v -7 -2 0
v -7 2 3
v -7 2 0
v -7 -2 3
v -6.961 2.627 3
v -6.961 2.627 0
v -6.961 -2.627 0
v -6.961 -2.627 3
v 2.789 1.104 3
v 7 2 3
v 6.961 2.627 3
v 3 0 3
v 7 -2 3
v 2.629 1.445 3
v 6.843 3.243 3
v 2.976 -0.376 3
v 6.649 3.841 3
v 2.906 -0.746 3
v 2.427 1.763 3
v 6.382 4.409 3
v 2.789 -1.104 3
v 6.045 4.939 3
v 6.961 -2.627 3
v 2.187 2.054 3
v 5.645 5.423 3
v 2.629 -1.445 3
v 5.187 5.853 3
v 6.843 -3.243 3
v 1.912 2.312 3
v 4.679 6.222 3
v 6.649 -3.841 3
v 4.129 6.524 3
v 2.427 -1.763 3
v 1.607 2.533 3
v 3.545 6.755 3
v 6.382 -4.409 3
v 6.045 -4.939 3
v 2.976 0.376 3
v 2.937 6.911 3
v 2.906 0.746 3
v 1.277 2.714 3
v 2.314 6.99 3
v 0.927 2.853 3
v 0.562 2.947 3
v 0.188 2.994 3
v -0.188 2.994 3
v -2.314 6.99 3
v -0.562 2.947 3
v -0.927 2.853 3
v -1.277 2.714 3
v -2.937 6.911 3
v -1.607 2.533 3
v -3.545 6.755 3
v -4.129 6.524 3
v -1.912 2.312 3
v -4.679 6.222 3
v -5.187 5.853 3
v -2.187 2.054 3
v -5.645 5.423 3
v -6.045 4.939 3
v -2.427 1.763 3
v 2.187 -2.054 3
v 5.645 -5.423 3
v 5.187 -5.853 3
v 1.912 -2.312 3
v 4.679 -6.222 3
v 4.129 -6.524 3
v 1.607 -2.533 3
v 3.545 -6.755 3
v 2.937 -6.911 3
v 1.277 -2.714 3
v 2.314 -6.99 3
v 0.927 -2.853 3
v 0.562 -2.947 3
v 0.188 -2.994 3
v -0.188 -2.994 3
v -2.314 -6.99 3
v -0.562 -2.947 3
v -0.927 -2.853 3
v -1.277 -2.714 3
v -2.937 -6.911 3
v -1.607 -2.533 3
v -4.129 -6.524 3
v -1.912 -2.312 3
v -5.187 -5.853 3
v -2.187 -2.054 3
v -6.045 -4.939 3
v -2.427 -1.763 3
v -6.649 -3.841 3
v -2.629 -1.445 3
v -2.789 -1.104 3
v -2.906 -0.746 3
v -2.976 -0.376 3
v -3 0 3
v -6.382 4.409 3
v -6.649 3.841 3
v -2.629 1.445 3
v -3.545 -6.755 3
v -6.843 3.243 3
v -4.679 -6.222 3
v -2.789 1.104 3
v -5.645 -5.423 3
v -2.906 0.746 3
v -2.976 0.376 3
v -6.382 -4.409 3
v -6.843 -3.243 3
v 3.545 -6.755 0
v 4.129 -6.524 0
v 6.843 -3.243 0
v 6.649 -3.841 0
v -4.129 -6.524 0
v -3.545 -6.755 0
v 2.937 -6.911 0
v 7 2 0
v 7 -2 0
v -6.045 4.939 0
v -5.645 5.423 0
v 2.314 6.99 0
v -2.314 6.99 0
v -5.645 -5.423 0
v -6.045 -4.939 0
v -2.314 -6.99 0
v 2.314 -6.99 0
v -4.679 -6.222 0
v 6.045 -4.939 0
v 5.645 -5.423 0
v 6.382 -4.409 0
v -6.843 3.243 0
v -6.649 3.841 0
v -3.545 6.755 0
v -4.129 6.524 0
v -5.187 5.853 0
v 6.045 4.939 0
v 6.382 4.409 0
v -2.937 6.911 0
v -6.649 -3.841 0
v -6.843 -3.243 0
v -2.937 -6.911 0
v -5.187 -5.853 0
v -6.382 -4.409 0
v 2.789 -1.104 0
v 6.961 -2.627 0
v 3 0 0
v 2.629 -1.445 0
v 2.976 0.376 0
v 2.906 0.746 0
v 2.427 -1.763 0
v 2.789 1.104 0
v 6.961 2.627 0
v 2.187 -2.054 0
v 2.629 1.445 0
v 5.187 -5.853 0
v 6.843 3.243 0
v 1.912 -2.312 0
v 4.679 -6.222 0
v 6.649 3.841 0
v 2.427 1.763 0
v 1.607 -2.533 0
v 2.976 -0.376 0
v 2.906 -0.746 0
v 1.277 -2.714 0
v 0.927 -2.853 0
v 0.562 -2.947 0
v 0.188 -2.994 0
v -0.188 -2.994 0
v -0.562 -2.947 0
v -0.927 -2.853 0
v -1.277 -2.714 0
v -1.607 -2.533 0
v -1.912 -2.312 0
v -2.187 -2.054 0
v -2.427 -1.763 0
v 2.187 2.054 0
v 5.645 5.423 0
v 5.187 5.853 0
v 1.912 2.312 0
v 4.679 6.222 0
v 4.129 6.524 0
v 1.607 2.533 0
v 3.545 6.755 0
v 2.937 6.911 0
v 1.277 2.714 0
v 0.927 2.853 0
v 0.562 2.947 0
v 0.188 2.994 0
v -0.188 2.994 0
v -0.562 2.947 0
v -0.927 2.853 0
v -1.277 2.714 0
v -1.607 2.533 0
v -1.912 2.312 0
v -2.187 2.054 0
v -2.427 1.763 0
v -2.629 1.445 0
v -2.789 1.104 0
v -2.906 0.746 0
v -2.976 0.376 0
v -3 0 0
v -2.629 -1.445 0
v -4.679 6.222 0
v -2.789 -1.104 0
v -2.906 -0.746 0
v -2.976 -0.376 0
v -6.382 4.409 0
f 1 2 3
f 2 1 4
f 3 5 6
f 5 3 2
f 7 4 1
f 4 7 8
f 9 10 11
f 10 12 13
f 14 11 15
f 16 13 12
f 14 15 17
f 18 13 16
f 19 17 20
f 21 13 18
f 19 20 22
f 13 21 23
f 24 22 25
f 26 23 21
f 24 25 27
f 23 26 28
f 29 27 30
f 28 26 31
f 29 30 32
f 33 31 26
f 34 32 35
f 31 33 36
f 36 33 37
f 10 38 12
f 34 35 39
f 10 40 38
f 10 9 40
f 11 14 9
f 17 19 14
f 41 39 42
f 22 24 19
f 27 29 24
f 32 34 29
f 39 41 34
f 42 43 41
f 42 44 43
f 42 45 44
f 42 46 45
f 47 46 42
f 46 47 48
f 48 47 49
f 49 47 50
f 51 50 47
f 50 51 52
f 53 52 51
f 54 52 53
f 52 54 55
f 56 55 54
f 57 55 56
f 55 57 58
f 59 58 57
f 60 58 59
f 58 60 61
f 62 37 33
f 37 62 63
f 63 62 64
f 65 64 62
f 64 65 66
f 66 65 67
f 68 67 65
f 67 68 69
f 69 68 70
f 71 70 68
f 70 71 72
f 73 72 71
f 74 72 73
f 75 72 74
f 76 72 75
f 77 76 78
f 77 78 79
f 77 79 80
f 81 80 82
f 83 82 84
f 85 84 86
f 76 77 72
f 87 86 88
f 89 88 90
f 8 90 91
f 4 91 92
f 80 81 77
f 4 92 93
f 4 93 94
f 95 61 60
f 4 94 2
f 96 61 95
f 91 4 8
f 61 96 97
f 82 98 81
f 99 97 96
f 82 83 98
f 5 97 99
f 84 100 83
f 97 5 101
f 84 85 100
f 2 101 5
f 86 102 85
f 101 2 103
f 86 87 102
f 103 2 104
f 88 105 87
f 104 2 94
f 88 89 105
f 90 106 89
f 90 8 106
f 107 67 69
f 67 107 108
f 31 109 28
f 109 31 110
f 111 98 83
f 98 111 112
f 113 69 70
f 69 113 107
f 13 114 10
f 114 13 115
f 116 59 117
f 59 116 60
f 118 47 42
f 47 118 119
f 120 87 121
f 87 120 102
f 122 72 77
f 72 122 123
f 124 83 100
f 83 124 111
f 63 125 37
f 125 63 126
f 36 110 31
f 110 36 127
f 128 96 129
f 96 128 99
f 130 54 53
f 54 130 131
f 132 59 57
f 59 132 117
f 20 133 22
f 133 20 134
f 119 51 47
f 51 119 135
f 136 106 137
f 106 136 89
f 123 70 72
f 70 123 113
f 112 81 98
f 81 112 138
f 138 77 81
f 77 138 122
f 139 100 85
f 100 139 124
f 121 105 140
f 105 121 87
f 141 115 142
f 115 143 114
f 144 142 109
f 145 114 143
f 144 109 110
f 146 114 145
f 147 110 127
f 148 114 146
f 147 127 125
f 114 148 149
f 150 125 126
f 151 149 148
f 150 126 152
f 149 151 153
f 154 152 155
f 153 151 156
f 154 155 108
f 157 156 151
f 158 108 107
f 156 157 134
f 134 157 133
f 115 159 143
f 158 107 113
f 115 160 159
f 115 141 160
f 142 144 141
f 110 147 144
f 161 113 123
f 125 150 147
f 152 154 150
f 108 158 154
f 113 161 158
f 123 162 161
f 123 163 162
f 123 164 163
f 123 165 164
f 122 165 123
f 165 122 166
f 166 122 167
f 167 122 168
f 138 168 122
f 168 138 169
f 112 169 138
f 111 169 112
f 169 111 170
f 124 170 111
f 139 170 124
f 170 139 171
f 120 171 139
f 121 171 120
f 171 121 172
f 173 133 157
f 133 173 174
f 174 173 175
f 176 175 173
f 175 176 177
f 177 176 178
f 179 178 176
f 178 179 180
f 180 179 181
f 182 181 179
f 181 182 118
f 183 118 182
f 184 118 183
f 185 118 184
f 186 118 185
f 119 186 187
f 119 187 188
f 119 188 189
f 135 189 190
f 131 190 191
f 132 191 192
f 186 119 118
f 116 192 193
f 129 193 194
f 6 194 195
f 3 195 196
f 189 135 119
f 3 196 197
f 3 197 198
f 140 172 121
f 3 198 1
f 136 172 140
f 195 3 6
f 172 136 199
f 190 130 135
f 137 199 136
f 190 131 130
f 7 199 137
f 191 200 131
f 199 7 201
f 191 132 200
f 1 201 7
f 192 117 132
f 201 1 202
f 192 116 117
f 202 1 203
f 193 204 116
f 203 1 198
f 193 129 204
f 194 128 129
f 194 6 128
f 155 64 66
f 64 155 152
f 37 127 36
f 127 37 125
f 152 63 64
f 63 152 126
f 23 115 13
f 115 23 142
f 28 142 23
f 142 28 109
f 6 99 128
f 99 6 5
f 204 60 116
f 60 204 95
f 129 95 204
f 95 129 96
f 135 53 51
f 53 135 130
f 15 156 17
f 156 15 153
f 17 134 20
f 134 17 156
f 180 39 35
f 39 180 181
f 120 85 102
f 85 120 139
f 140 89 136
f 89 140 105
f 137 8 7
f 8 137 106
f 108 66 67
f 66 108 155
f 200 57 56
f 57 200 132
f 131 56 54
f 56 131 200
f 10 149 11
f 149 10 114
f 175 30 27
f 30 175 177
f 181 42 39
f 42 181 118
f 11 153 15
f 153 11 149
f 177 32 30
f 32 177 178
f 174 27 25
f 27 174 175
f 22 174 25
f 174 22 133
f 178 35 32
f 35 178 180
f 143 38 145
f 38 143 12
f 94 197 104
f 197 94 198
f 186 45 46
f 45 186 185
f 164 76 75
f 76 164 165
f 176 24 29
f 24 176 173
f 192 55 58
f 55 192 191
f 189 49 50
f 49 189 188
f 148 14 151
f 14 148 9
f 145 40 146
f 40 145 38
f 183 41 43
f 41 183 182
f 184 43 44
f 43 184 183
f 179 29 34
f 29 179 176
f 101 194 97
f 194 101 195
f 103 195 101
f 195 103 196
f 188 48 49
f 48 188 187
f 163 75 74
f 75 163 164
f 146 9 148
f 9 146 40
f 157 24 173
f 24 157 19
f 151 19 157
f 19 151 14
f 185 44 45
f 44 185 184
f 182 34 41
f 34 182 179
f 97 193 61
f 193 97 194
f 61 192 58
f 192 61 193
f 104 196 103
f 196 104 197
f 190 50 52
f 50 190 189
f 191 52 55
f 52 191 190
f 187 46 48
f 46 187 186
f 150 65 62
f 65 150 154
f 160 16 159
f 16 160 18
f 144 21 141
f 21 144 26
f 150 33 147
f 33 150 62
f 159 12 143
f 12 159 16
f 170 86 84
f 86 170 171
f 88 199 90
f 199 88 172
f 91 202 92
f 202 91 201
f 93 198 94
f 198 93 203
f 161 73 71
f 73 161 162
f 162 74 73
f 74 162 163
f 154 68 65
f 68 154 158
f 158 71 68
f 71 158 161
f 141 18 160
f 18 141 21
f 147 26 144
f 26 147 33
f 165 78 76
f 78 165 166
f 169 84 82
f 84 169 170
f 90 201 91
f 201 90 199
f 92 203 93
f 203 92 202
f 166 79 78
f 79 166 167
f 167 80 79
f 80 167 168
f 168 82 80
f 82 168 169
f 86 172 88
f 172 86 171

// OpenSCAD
// Generated by SolidPython 1.1.3 on 2023-03-12 21:50:28
$fn = 50;


difference() {
	union() {
		translate(v = [0, 0, 0]) {
			rotate(a = [0, 0, 0]) {
				hull() {
					translate(v = [-2.0000000000, 2.0000000000, 0]) {
						rotate(a = [0, 0, 0]) {
							translate(v = [0, 0, 0]) {
								rotate(a = [0, 0, 0]) {
									cylinder(h = 3, r = 5);
								}
							}
						}
					}
					translate(v = [2.0000000000, 2.0000000000, 0]) {
						rotate(a = [0, 0, 0]) {
							translate(v = [0, 0, 0]) {
								rotate(a = [0, 0, 0]) {
									cylinder(h = 3, r = 5);
								}
							}
						}
					}
					translate(v = [-2.0000000000, -2.0000000000, 0]) {
						rotate(a = [0, 0, 0]) {
							translate(v = [0, 0, 0]) {
								rotate(a = [0, 0, 0]) {
									cylinder(h = 3, r = 5);
								}
							}
						}
					}
					translate(v = [2.0000000000, -2.0000000000, 0]) {
						rotate(a = [0, 0, 0]) {
							translate(v = [0, 0, 0]) {
								rotate(a = [0, 0, 0]) {
									cylinder(h = 3, r = 5);
								}
							}
						}
					}
				}
			}
		}
	}
	union() {
		translate(v = [0.0000000000, 0.0000000000, 0]) {
			rotate(a = [0, 0, 0]) {
				translate(v = [0, 0, -50]) {
					rotate(a = [0, 0, 0]) {
						cylinder(h = 100, r = 3.0000000000);
					}
				}
			}
		}
	}
}
/***********************************************
*********      SolidPython code:      **********
************************************************
 
from solid import *
import os
import subprocess

import oomB

import opsc_library_gen

mode = "laser"
#mode = "3d_print"

defined_objects = {}

radius_dict = {}
countersunk_dict = {}


def set_mode(m):
    global mode
    mode = m
    radius_dict['M6'] = 6.5/2
    radius_dict['M3'] = 3.3/2
    if mode == "laser":
        radius_dict['M6'] = 6/2
        radius_dict['M3'] = 3/2

    countersunk_dict['M3'] = {}
    countersunk_dict['M3']['little_rad'] = radius_dict['M3']
    countersunk_dict['M3']['big_rad'] = (5.5+0.6)/2
    if mode == "laser":
        countersunk_dict['M3']['big_rad'] = (4.75+0.6)/2
        countersunk_dict['M3']['little_rad'] = (4.75+0.6)/2

    countersunk_dict['M3']['height'] = 1.7


def opsc_make_object(filename, objects, save_type="none",resolution=50, layers = 1, tilediff = 200, mode="laser", overwrite=True):
    if overwrite or not os.path.exists(filename):
        set_mode(mode)
        save_type = save_type.lower()
        os.makedirs(os.path.dirname(filename), exist_ok=True)
        final_object = opsc_get_object(objects, mode = mode)
        # Save the final object to the specified filename    
        scad_render_to_file(final_object, filename, file_header='$fn = %s;' % resolution, include_orig_code=True)
        if mode == "laser":
            filename_laser = filename.replace(".scad","-flat.scad")
            scad_render_to_file(getLaser(final_object, layers=layers, tilediff=tilediff), filename_laser, file_header='$fn = %s;' % resolution, include_orig_code=True)
            if save_type == "all":
                saveToAll(filename_laser)
            elif save_type == "dxf":
                saveToDxf(filename_laser)
        if save_type == "all":
            saveToAll(filename)
        elif save_type == "dxf":
            saveToDxf(filename)


def opsc_get_object(objects, mode = "laser"):
    # Create the solidpython objects only include the positive objects and if they don't have inclusion or their inclusion is either all or mode
    # Initialize an empty list to store the results
    positive_objects = []

    # Iterate over the "objects" list
    for obj in objects:
        # Check if the current object has a "type" key with a value of "positive"
        if obj['type'] == 'positive':
            # Check if the current object has an "inclusion" key and its value matches "mode",
            # or if the current object does not have an "inclusion" key at all
            if not 'inclusion' in obj or obj['inclusion'] == "all" or obj['inclusion'] == mode:
                # Call the "get_opsc_item" function with the current object as an argument
                opsc_item = get_opsc_item(obj)
                # Add the result to the "positive_objects" list
                positive_objects.append(opsc_item)
# Initialize an empty list to store the results
    negative_objects = []

    # Iterate over the "objects" list
    for obj in objects:
        # Check if the current object has a "type" key with a value of "negative"
        if obj['type'] == 'negative':
            # Check if the current object has an "inclusion" key and its value matches "mode",
            # or if the current object does not have an "inclusion" key at all
            if not 'inclusion' in obj or obj['inclusion'] == "all" or obj['inclusion'] == mode:
                # Call the "get_opsc_item" function with the current object as an argument
                opsc_item = get_opsc_item(obj)
                # Add the result to the "negative_objects" list
                negative_objects.append(opsc_item)
    
    #positive_objects = [get_opsc_item(obj) for obj in objects if obj['type'] == 'positive']
    #negative_objects = [get_opsc_item(obj) for obj in objects if obj['type'] == 'negative']
    # Union the positive objects
    positive_object = union()(*positive_objects)
    # Union the negative objects
    negative_object = union()(*negative_objects)
    # Create the final object by subtracting the negative objects from the positive objects
    return difference()(positive_object, negative_object)

def get_opsc_item(params):
    # A dictionary to map radius string values to numerical values
    #radius_dict = {'small': 5, 'medium': 10, 'large': 15}
    # An array of function names for basic shapes
    basic_shapes = ['cube', 'sphere', 'cylinder']
    
    # An array of function names for other shapes
    other_shapes = ['hole', 'slot', 'rounded_rectangle', 'countersunk']
    


    # Convert radius to r if present, and remove radius from the params dictionary
    if 'radius' in params:
        if isinstance(params['radius'], str):
            # Use the radius_dict to map the radius string value to a numerical value
            params['r'] = radius_dict[params['radius']]
        else:
            params['r'] = params['radius']
        del params['radius']
    

    # Check if the object type is a basic shape
    if params['shape'] in basic_shapes:
        # Remove shape and unexpected dictionary values
        allowed_keys = {'size', 'r', 'r1', 'r2', 'd', 'h', 'rw', 'rh', 'dw', 'dh'}
        shape_params = {k: v for k, v in params.items() if k in allowed_keys}

        # Call the corresponding function for the shape parameter, using ** notation to pass the shape_params dictionary as keyword arguments
        return get_opsc_transform(params,globals()[params['shape']](**shape_params))
    
    # If the object type is not a basic shape, check if it's a defined object or one of the other shapes
    elif params['shape'] in other_shapes:
        # Call the corresponding function for the shape parameter, passing the params dictionary as an argument
        p2 = copy.deepcopy(params)
        p2["pos"] = [0,0,0]
        return get_opsc_transform(params,globals()[params['shape']](p2))
    
    # If the object is not a basic shape or a defined object, try to import it from a .scad file
    else:
        obj = defined_objects[params['shape']]
        return get_opsc_transform(params,obj)

def get_opsc_transform(params, solid_obj):
    # Rotate the object based on the 'rot' field in the params dictionary, or the 'rotX', 'rotY', and 'rotZ' fields if 'rot' is not present
    rot = params.get('rot', [])
    if rot:
        rotX, rotY, rotZ = rot
    else:
        rotX = params.get('rotX', 0)
        rotY = params.get('rotY', 0)
        rotZ = params.get('rotZ', 0)
    solid_obj = rotate([rotX, rotY, rotZ])(solid_obj)

    # Translate the object based on the 'pos' field in the params dictionary, or the 'x', 'y', and 'z' fields if 'pos' is not present
    pos = params.get('pos', [])
    if pos:
        x, y, z = pos
    else:
        x = params.get('x', 0)
        y = params.get('y', 0)
        z = params.get('z', 0)
    solid_obj = translate([x, y, z])(solid_obj)
    return solid_obj


import random

def opsc_easy_array(type, shape, repeats, pos_start, shift_arr, **kwargs):
    for i in range(0,3):
        repeats.append(1)
        pos_start.append(0)
        shift_arr.append(0)
    return_objects = []

    for x in range(0,repeats[0]):
        for y in range(0,repeats[1]):
            for z in range(0,repeats[2]):
                return_objects.append(opsc_easy(type, shape, pos=[pos_start[0]+x*shift_arr[0],pos_start[1]+y*shift_arr[1],pos_start[2]+z*shift_arr[2]], **kwargs))
    return return_objects                



def opsc_easy(type, shape, **kwargs):
    obj = {
        'type': type,
        'shape': shape
    }
    for param in ['size', 'r', 'r1', 'r2', 'd', 'h', 'rw', 'rh', 'dw', 'dh', 'pos', 'x', 'y', 'z', 'rot', 'rotX', 'rotY', 'rotZ', "w", "inclusion"]:
        if param in kwargs:
            obj[param] = kwargs[param]
    return obj

def hole(params):
    p2 = copy.deepcopy(params)  
    # Check if the radius is a string and replace it with the corresponding value from the dictionary
    if isinstance(p2['r'], str):
        p2['r'] = radius_dict[p2['r']]
    
    # Set the height to 100 if not specified
    if 'h' not in p2:
        p2['h'] = 100
        p2["pos"] = [0,0,-50]
    p2["center"] = True
    # Create the cylinder object
    p2["shape"] = "cylinder"
    p2["type"] = "positive"

    return get_opsc_item(p2)

import copy

def countersunk(params):
    p2 = copy.deepcopy(params)
    counter_rad = p2['r']
    p2['r'] = radius_dict[p2['r']]
    hp = copy.deepcopy(p2)
    hp["type"] = "positive"
    hp["shape"] = "hole"
    del hp["rot"]
    hol = get_opsc_item(hp)
    
    cp = copy.deepcopy(p2)
    cp["h"] = countersunk_dict[counter_rad]["height"]
    cp["r2"] = countersunk_dict[counter_rad]["little_rad"]
    cp["r1"] = countersunk_dict[counter_rad]["big_rad"]
    del cp["r"]
    del cp["rot"]
    cp["type"] = "positive"
    cp["shape"] = "cylinder"
    cp["pos"] = [0,0,0]

    top = get_opsc_item(cp)
    return union()(hol,top)



def slot(params):  
    p2 = copy.deepcopy(params) 
    if isinstance(p2['r'], str):
        p2['r'] = radius_dict[p2['r']]
    p2["type"] = "positive"
    p2["shape"] = "hole"
    del p2["rot"]
    p2["pos"] = [0,0,0]
    left = copy.deepcopy(p2)
    right = copy.deepcopy(p2)
    left["pos"][0] = p2["w"] / 2 - p2["r"] 
    
    right["pos"][0] = -p2["w"] / 2 + p2["r"] 
    pass
    leftObj = get_opsc_item(left)
    rightObj = get_opsc_item(right)
    return hull()(leftObj, rightObj)

def rounded_rectangle(params):   
    p2 = copy.deepcopy(params) 
    p2["h"] = p2["size"][2]
    p2["pos"] = p2.get("pos", [0, 0, 0]) 
    p2["type"] = "positive"
    p2["shape"] = "hole"
    p2["pos"] = [0,0,0]
    
    if 'rot' in p2:
        del p2["rot"]   
    if 'r' not in p2:
        p2["r"] = 5 
    tl = copy.deepcopy(p2)
    tr = copy.deepcopy(p2)
    bl = copy.deepcopy(p2)
    br = copy.deepcopy(p2)
    tl["pos"][0] = -(p2["size"][0] - p2["r"]*2)/2
    tl["pos"][1] = (p2["size"][1] - p2["r"]*2)/2
    tr["pos"][0] = (p2["size"][0] - p2["r"]*2)/2
    tr["pos"][1] = (p2["size"][1] - p2["r"]*2)/2
    bl["pos"][0] = -(p2["size"][0] - p2["r"]*2)/2
    bl["pos"][1] = -(p2["size"][1] - p2["r"]*2)/2
    br["pos"][0] = (p2["size"][0] - p2["r"]*2)/2
    br["pos"][1] = -(p2["size"][1] - p2["r"]*2)/2
    del tl["size"]
    del tr["size"]
    del bl["size"]
    del br["size"]
    tlo = get_opsc_item(tl)
    tro = get_opsc_item(tr)
    blo = get_opsc_item(bl)
    bro = get_opsc_item(br)    
    return hull()(tlo, tro, blo, bro)



def import_scad_object(filename):
    # Import the .scad file and convert it to a solidpython object
    #filename = "parts"
    obj = import_scad(filename)
    return obj.main()
    


import os
import solid as solidpython

# A dictionary to store the defined objects


def load_scad_objects():
    opsc_library_gen.gen_library(defined_objects)

import random

def test(num_objects):
    objects = []
    for i in range(num_objects):
        # Choose a random shape
        #shape = random.choice(['cube', 'sphere', 'cylinder', 'hole', 'slot', "rounded_rectangle"])
        shape = random.choice(["rounded_rectangle"])

        # Choose a random type
        type = random.choice(['positive', 'negative'])
        
        # Create an empty object dictionary
        obj = {'shape': shape, 'type': type}
        
        # Set shape-specific parameters
        if obj['shape'] in ['cube']:
            obj['size'] =  [random.uniform(5, 15), random.uniform(5, 15), random.uniform(5, 15)]
        if obj['shape'] in ['rounded_rectangle']:
            obj['size'] =  [random.uniform(5, 15), random.uniform(5, 15), random.uniform(5, 15)]
            obj['r'] = random.uniform(0.5, 5)
        elif obj['shape'] == 'sphere':
            obj['r'] = random.uniform(5, 15)
        elif obj['shape'] in ['cylinder', 'hole']:
            obj['r'] = random.uniform(0.5, 5)
            obj['h'] = random.uniform(5, 15)
        elif obj['shape'] == 'slot':
            obj['r'] = random.uniform(0.5, 5)
            obj['h'] = random.uniform(5, 15)
            obj['w'] = random.uniform(5, 15)
        
        # Set a random position and rotation
        obj['pos'] = [random.uniform(-20, 20), random.uniform(-20, 20), random.uniform(-20, 20)]
        obj['rot'] = [random.uniform(-180, 180), random.uniform(-180, 180), random.uniform(-180, 180)]
        
        # Add the object to the list
        objects.append(obj)
    return objects

####### old file saving
def saveToAll(fileIn):
    saveToDxf(fileIn)
    saveToPng(fileIn)
    saveToStl(fileIn)
    saveToSvg(fileIn)

def saveToDxf(fileIn, fileOut="", copy_to_laser=True):
    if fileOut == "":
        fileOut = fileIn.replace(".scad",".dxf")
    saveToFile(fileIn, fileOut)


    
def saveToPng(fileIn, fileOut="",extra="--render"):
    if fileOut == "":
        fileOut = fileIn.replace(".scad",".png")
    saveToFile(fileIn, fileOut)

def saveToStl(fileIn, fileOut=""):
    if fileOut == "":
        fileOut = fileIn.replace(".scad",".stl")
    saveToFile(fileIn, fileOut)
    
def saveToSvg(fileIn, fileOut=""):
    if fileOut == "":
        fileOut = fileIn.replace(".scad",".svg")
    saveToFile(fileIn, fileOut)

def saveToFile(fileIn, fileOut,extra=""):
    #extra = extra + " --colorscheme Tomorrow"

    launchStr = 'openscad -o "' + fileOut + '"' + extra + ' "' + fileIn + '"'
    if ".png" in fileOut:
        launchStr = launchStr + " --render"
    print("            saveToFile launch string: " + launchStr)
    subprocess.run(launchStr)
    x=0

def getLaser(final_object,start=1.5,layers=1,thickness=3,tilediff=200):
        rv= []

        for x in range(layers):
            rv.append(translate([0,x*tilediff,0])(
                    projection()(
                        intersection()(translate([-500,-500,start+x*thickness])(cube(size=[1000,1000,0.1])),
                            final_object
                        )
                    )
            )
            )
            
        return union()(rv)

set_mode("laser")
load_scad_objects() 
 
************************************************/
